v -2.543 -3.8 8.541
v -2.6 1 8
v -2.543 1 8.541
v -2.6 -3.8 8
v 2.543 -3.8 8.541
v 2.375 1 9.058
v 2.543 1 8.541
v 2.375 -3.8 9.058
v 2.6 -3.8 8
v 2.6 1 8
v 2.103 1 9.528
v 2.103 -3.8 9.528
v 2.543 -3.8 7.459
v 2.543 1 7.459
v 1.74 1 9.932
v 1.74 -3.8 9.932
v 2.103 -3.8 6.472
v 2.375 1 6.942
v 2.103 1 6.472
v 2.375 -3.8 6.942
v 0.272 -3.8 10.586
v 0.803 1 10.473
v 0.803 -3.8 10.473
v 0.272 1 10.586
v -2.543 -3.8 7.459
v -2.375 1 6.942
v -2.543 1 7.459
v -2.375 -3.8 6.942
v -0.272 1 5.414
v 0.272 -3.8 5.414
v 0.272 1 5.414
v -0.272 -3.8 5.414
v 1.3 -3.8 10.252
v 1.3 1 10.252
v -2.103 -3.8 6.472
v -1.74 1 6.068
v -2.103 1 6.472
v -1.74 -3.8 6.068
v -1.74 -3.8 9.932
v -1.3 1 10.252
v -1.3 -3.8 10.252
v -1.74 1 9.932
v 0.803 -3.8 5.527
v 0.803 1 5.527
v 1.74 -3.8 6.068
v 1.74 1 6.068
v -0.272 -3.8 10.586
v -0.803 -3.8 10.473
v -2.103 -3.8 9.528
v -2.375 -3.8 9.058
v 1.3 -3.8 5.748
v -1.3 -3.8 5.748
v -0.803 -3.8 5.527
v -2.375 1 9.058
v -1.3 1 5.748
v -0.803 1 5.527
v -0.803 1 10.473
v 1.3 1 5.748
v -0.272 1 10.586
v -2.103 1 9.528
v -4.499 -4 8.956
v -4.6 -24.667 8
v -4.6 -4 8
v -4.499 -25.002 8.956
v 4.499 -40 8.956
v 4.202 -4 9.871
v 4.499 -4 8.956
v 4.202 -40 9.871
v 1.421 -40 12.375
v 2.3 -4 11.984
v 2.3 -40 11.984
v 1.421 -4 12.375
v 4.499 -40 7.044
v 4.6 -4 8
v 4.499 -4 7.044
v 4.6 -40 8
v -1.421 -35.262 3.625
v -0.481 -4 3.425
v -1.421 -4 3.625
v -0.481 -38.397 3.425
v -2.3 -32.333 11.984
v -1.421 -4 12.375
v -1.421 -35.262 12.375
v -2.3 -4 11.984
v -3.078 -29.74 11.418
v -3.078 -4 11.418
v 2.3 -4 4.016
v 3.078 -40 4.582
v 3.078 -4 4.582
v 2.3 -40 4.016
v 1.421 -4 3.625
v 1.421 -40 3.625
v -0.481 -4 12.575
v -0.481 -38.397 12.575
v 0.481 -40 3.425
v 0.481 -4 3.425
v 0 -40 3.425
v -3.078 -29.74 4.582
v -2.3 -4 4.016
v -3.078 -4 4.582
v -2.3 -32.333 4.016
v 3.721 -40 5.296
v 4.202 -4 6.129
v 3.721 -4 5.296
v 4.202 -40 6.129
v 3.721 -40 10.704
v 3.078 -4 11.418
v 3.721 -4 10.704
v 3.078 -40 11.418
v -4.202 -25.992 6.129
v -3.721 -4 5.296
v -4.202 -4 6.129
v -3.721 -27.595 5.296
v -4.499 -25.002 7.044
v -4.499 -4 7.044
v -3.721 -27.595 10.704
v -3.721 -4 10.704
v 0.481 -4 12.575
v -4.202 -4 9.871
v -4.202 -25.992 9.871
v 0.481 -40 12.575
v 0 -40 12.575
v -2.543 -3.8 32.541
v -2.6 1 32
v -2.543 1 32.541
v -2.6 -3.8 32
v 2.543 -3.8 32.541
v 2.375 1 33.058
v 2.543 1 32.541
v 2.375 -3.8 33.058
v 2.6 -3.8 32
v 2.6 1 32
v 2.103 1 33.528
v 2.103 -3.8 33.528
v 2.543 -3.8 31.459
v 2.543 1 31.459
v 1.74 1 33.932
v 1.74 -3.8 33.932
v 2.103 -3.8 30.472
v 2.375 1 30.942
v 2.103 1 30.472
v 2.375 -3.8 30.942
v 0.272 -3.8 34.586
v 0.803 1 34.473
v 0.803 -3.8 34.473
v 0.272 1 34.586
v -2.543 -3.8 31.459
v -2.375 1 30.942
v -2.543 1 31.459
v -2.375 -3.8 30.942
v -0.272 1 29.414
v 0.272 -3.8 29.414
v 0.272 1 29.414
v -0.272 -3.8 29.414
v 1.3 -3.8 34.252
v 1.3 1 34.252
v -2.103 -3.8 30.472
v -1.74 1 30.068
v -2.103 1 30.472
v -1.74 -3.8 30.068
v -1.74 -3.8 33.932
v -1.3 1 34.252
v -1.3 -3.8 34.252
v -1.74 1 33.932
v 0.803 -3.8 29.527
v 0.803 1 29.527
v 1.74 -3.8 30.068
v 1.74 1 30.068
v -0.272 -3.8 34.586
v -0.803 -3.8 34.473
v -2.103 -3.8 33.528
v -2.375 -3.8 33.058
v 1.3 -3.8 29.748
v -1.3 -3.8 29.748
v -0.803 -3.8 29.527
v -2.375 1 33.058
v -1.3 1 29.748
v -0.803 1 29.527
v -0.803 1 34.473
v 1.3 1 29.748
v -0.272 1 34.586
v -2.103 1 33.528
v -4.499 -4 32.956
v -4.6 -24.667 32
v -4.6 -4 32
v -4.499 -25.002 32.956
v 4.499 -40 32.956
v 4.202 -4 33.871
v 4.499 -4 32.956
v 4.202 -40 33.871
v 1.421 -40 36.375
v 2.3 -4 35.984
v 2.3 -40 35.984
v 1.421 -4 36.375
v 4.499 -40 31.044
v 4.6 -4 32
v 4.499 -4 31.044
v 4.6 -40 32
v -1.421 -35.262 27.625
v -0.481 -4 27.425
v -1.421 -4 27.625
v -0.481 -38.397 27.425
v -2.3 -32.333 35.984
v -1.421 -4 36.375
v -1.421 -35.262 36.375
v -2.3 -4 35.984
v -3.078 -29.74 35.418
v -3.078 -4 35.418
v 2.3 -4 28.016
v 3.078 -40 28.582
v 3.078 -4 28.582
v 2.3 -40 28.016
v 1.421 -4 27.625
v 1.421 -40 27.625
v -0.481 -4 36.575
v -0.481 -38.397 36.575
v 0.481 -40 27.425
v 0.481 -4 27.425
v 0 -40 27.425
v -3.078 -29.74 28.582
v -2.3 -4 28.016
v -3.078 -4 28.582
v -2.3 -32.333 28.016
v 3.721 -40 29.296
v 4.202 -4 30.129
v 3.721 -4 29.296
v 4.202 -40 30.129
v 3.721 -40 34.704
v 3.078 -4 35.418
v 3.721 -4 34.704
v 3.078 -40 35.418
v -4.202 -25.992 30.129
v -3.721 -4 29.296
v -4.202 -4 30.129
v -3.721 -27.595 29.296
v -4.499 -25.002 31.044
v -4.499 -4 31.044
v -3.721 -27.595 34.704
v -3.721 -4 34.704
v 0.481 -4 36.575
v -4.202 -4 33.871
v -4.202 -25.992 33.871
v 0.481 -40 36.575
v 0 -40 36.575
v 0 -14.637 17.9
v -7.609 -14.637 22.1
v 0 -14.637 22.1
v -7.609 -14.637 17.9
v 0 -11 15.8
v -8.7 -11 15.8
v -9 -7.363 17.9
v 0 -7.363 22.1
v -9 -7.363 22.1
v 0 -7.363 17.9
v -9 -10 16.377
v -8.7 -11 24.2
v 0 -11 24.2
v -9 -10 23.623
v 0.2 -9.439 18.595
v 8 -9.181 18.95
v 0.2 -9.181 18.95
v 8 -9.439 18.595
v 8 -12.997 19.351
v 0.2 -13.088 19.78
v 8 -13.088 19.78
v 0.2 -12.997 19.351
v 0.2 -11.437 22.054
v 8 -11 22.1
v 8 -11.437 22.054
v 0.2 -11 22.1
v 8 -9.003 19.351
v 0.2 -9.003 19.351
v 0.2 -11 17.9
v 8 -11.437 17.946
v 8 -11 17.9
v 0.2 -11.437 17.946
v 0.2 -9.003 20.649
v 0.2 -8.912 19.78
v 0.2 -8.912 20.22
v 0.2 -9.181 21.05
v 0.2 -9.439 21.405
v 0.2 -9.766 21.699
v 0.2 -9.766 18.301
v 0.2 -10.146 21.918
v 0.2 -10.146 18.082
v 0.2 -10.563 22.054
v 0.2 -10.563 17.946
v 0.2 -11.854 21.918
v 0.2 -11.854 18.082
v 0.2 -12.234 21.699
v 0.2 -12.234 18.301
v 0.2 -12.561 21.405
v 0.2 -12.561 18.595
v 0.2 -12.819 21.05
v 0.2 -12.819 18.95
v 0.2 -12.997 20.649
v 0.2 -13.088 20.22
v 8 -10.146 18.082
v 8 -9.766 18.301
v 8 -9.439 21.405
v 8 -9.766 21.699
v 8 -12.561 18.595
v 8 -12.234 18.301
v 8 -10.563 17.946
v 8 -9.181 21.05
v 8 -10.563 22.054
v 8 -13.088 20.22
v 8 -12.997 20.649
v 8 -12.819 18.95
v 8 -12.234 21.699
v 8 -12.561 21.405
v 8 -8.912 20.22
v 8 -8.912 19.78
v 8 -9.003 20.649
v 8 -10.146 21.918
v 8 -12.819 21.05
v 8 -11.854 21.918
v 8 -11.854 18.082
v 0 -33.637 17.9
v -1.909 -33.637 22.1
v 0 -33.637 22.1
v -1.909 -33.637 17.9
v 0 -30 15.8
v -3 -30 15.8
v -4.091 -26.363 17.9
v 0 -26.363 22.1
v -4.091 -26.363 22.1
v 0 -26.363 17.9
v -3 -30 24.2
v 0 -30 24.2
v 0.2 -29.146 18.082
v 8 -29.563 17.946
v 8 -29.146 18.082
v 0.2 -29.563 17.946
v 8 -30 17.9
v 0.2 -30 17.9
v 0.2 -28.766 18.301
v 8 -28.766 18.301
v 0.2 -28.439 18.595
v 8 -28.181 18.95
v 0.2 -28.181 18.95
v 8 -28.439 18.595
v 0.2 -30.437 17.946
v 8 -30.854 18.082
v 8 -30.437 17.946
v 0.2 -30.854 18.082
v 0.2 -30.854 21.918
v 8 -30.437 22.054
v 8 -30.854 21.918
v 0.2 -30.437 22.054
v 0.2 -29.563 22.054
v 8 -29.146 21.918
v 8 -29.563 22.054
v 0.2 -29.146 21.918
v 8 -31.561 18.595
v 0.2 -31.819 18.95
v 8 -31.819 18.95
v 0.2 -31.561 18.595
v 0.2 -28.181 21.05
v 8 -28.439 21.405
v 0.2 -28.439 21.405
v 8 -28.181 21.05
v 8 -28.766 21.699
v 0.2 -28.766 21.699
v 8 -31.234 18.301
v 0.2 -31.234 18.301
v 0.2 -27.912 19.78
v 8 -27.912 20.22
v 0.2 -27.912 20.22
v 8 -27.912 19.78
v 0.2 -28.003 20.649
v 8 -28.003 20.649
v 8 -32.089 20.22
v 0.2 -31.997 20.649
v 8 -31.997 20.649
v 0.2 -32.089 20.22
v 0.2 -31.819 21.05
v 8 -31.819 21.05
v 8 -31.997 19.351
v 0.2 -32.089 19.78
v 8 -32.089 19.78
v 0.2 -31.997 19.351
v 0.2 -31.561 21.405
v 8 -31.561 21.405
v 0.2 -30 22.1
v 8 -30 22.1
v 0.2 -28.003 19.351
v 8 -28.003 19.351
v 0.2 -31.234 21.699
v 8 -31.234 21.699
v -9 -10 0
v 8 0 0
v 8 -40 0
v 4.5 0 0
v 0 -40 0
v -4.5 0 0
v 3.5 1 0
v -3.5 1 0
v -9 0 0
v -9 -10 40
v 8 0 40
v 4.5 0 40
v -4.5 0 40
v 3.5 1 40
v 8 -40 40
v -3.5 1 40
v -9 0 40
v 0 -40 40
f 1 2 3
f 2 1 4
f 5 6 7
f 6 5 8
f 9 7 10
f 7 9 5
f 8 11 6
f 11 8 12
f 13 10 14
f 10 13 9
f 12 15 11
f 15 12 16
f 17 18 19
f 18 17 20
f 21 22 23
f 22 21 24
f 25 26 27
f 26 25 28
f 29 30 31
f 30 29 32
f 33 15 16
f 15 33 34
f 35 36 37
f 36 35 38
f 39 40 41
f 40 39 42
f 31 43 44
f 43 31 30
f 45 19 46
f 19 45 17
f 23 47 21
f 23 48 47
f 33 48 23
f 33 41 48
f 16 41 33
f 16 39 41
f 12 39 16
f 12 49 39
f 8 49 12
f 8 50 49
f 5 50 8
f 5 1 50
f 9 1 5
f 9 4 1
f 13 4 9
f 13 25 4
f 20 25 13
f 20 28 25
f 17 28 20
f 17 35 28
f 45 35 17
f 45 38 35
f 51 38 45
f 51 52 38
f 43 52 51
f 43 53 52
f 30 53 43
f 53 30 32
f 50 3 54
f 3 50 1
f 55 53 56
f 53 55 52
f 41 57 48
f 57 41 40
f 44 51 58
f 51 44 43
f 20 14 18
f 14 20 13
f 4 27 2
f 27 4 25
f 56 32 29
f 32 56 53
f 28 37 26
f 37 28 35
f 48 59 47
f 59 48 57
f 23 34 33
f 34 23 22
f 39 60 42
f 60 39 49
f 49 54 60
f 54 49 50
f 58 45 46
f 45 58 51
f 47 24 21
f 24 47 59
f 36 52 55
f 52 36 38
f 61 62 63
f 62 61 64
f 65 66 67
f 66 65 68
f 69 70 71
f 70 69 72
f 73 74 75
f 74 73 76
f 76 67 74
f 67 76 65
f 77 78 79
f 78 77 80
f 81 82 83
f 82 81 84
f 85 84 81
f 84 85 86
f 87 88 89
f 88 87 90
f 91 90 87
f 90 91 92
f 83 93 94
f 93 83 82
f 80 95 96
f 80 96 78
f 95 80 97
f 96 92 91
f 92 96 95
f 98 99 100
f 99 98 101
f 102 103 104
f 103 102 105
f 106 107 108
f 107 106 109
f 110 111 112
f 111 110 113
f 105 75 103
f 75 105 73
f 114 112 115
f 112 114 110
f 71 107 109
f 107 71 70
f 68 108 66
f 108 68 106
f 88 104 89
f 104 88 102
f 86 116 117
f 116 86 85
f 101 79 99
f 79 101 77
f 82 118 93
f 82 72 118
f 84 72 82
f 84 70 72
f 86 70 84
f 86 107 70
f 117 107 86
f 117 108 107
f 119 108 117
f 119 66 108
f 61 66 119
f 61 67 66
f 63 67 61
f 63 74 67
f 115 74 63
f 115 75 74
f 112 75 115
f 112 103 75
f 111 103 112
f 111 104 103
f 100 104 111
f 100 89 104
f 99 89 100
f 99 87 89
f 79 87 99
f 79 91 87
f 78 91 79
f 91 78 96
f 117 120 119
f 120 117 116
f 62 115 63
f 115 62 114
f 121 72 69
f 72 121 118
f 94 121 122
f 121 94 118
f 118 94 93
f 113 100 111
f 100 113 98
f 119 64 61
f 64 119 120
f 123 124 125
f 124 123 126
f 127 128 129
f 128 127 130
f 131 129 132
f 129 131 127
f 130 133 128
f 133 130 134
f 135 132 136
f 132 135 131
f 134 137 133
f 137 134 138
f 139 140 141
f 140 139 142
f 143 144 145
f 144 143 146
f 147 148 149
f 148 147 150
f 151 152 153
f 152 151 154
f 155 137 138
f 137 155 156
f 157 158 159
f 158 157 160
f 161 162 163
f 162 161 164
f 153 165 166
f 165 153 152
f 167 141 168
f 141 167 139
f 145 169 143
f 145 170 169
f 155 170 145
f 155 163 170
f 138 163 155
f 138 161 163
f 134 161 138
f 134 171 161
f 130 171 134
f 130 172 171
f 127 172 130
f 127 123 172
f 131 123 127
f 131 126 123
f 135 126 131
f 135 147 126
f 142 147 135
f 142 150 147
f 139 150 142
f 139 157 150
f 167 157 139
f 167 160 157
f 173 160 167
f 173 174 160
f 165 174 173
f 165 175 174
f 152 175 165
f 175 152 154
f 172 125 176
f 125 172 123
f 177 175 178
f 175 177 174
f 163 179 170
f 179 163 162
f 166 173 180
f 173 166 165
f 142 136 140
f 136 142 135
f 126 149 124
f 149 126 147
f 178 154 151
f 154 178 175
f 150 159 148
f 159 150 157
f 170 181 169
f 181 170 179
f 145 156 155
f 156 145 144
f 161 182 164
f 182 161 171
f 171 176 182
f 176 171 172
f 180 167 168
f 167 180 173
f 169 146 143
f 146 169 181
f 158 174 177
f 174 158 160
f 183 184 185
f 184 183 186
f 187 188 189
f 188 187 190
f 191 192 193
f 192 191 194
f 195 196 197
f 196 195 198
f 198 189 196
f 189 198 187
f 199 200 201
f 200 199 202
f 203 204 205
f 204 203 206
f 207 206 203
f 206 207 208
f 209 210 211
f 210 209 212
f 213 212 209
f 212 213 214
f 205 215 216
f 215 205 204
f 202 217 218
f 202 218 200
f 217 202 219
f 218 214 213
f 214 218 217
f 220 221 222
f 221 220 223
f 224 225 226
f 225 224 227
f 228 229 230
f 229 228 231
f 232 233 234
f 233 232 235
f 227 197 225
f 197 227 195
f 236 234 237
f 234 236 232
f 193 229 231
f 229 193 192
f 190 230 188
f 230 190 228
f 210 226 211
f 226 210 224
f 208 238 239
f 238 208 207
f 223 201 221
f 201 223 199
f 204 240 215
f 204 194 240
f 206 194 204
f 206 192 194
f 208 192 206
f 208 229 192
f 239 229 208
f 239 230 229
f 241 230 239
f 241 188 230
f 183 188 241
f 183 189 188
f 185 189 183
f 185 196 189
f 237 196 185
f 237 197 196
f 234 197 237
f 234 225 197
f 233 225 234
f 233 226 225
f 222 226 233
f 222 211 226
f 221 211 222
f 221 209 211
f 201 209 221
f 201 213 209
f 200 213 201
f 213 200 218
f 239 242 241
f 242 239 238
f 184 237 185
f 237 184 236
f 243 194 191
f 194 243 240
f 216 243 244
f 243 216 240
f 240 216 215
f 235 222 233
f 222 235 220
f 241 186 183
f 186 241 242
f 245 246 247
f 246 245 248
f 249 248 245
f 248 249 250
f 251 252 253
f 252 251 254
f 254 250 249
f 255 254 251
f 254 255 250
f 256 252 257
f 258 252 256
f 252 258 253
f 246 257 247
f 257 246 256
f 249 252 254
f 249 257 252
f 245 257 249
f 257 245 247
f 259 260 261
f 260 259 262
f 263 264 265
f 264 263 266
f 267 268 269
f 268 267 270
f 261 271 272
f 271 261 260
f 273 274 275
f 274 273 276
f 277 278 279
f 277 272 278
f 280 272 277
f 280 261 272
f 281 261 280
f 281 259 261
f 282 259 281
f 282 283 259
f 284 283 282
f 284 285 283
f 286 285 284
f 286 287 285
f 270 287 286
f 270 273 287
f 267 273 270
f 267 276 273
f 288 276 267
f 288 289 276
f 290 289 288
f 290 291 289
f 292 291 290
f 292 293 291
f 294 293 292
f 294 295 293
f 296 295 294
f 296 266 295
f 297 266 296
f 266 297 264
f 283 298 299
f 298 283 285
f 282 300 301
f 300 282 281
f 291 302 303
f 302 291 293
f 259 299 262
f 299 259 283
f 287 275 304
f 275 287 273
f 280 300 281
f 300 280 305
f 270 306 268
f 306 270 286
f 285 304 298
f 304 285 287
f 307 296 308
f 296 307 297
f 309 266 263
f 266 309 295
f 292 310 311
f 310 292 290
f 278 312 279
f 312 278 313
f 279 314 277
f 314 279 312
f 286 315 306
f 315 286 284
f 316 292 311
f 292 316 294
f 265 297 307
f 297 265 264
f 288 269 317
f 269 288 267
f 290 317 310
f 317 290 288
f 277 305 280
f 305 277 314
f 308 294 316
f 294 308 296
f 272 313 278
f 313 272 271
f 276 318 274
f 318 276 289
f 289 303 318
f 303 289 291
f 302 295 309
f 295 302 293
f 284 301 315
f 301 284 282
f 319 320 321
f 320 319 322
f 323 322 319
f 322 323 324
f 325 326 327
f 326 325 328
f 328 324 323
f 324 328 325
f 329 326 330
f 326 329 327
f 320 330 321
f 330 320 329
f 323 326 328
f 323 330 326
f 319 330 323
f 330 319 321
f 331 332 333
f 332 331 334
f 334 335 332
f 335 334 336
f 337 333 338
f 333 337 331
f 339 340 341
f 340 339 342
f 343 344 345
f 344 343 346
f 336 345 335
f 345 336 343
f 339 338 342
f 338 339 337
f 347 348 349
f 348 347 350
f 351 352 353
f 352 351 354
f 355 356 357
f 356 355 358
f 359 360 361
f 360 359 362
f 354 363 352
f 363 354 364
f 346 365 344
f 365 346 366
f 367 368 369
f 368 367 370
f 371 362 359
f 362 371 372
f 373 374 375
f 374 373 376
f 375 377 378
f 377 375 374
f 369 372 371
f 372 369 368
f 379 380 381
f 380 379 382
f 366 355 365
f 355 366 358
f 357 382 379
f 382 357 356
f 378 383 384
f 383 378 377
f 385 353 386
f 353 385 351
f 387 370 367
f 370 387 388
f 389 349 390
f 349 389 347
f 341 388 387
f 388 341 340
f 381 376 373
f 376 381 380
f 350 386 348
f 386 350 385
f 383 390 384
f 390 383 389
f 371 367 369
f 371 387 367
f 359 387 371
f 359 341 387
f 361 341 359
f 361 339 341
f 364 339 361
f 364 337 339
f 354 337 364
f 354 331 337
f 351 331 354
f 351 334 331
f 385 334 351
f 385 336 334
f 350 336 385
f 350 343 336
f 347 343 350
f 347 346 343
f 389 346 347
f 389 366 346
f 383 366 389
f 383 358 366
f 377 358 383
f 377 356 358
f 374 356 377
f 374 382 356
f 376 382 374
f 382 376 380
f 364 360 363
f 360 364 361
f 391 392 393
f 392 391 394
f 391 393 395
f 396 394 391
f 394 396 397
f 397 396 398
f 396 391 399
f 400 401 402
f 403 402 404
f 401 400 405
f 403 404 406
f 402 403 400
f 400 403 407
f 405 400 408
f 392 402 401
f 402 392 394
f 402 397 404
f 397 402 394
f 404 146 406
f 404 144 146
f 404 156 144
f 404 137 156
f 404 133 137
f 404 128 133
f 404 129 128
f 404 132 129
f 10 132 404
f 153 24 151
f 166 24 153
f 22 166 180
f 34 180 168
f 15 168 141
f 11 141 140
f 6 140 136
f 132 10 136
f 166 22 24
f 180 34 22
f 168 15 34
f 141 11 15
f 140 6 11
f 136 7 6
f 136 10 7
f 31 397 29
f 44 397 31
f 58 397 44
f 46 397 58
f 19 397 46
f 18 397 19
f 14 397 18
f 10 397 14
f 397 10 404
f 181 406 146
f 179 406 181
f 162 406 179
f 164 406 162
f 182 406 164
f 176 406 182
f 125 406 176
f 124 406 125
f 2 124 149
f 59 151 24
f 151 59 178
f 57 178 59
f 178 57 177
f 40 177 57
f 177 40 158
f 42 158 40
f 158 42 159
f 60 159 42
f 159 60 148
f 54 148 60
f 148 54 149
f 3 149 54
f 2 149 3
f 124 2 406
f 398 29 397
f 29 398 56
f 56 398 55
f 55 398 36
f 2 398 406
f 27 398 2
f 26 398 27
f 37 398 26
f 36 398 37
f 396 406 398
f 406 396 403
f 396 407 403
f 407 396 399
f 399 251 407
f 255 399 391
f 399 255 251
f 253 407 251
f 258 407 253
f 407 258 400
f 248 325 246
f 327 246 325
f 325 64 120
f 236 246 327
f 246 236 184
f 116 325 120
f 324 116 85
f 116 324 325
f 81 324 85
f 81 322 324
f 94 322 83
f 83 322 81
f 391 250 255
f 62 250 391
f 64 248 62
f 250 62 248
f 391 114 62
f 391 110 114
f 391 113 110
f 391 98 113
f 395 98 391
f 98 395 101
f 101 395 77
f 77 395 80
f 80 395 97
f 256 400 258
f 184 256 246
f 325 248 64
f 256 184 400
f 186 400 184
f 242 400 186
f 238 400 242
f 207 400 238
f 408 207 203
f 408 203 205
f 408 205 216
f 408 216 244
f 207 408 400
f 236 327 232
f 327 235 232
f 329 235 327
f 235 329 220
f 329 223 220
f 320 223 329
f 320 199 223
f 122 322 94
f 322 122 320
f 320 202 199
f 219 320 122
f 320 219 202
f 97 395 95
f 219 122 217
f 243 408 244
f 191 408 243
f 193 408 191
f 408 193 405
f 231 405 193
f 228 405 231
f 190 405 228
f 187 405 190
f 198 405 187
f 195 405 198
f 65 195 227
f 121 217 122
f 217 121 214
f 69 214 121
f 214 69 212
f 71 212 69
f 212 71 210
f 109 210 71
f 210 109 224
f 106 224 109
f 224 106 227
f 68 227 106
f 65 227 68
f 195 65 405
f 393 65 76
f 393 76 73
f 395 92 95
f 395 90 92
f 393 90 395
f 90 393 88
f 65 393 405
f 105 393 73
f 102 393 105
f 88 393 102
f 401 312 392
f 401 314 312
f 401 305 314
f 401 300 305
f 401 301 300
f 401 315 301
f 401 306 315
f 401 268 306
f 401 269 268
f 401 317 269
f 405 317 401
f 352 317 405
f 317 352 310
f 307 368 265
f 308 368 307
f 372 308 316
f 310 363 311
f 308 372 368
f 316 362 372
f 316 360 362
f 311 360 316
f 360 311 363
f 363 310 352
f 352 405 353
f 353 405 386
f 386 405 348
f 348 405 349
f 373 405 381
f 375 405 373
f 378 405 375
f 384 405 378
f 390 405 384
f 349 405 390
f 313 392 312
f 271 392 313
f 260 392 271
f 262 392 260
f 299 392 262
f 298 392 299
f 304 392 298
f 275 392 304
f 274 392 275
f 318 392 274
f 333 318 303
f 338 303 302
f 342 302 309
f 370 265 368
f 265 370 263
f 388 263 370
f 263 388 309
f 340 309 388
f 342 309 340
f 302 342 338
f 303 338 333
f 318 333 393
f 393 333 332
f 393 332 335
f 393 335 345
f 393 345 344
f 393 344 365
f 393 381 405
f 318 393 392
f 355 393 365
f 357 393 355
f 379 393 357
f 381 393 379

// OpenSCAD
partHt = 40;
outerWallThick = 8; /* this is how far we go from center towards outside
                       of the printer */
boltHoleDist = 19; /* distance between the holes on the cable chain */

module chainMountHoles() {
   translate([0,-11,20]) rotate([0,90,0]) union() {
      translate([0,0,-20]) cylinder($fn=6,r=4.2,h=20);
      translate([0,0,0.2]) cylinder($fn=30,r=2.1,h=20);

      translate([0,-1*boltHoleDist,-20]) cylinder($fn=6,r=4.2,h=20);
      translate([0,-1*boltHoleDist,0.2]) cylinder($fn=30,r=2.1,h=20);
   }
}


if (1) difference() {
   linear_extrude(height=partHt) {
      polygon(points=[[-9,0],[-4.5,0],[-3.5,1],[3.5,1],[4.5,0],
                      [outerWallThick,0], [outerWallThick,-40],
                      [0,-40],[-9,-10]]);
   }

   /* bolts to mount to printer */
   translate([0,-4,partHt/5]) rotate([90,0,0])
      capBoltHole();
   translate([0,-4,4*partHt/5]) rotate([90,0,0])
      capBoltHole();

   /* bolts to mount cable chain */
   chainMountHoles();
}

module capBoltHole() {
   translate([0,0,-60.2]) cylinder($fn=30,d=5.2,h=60);
   cylinder($fn=30,d=9.2,h=60);
}
